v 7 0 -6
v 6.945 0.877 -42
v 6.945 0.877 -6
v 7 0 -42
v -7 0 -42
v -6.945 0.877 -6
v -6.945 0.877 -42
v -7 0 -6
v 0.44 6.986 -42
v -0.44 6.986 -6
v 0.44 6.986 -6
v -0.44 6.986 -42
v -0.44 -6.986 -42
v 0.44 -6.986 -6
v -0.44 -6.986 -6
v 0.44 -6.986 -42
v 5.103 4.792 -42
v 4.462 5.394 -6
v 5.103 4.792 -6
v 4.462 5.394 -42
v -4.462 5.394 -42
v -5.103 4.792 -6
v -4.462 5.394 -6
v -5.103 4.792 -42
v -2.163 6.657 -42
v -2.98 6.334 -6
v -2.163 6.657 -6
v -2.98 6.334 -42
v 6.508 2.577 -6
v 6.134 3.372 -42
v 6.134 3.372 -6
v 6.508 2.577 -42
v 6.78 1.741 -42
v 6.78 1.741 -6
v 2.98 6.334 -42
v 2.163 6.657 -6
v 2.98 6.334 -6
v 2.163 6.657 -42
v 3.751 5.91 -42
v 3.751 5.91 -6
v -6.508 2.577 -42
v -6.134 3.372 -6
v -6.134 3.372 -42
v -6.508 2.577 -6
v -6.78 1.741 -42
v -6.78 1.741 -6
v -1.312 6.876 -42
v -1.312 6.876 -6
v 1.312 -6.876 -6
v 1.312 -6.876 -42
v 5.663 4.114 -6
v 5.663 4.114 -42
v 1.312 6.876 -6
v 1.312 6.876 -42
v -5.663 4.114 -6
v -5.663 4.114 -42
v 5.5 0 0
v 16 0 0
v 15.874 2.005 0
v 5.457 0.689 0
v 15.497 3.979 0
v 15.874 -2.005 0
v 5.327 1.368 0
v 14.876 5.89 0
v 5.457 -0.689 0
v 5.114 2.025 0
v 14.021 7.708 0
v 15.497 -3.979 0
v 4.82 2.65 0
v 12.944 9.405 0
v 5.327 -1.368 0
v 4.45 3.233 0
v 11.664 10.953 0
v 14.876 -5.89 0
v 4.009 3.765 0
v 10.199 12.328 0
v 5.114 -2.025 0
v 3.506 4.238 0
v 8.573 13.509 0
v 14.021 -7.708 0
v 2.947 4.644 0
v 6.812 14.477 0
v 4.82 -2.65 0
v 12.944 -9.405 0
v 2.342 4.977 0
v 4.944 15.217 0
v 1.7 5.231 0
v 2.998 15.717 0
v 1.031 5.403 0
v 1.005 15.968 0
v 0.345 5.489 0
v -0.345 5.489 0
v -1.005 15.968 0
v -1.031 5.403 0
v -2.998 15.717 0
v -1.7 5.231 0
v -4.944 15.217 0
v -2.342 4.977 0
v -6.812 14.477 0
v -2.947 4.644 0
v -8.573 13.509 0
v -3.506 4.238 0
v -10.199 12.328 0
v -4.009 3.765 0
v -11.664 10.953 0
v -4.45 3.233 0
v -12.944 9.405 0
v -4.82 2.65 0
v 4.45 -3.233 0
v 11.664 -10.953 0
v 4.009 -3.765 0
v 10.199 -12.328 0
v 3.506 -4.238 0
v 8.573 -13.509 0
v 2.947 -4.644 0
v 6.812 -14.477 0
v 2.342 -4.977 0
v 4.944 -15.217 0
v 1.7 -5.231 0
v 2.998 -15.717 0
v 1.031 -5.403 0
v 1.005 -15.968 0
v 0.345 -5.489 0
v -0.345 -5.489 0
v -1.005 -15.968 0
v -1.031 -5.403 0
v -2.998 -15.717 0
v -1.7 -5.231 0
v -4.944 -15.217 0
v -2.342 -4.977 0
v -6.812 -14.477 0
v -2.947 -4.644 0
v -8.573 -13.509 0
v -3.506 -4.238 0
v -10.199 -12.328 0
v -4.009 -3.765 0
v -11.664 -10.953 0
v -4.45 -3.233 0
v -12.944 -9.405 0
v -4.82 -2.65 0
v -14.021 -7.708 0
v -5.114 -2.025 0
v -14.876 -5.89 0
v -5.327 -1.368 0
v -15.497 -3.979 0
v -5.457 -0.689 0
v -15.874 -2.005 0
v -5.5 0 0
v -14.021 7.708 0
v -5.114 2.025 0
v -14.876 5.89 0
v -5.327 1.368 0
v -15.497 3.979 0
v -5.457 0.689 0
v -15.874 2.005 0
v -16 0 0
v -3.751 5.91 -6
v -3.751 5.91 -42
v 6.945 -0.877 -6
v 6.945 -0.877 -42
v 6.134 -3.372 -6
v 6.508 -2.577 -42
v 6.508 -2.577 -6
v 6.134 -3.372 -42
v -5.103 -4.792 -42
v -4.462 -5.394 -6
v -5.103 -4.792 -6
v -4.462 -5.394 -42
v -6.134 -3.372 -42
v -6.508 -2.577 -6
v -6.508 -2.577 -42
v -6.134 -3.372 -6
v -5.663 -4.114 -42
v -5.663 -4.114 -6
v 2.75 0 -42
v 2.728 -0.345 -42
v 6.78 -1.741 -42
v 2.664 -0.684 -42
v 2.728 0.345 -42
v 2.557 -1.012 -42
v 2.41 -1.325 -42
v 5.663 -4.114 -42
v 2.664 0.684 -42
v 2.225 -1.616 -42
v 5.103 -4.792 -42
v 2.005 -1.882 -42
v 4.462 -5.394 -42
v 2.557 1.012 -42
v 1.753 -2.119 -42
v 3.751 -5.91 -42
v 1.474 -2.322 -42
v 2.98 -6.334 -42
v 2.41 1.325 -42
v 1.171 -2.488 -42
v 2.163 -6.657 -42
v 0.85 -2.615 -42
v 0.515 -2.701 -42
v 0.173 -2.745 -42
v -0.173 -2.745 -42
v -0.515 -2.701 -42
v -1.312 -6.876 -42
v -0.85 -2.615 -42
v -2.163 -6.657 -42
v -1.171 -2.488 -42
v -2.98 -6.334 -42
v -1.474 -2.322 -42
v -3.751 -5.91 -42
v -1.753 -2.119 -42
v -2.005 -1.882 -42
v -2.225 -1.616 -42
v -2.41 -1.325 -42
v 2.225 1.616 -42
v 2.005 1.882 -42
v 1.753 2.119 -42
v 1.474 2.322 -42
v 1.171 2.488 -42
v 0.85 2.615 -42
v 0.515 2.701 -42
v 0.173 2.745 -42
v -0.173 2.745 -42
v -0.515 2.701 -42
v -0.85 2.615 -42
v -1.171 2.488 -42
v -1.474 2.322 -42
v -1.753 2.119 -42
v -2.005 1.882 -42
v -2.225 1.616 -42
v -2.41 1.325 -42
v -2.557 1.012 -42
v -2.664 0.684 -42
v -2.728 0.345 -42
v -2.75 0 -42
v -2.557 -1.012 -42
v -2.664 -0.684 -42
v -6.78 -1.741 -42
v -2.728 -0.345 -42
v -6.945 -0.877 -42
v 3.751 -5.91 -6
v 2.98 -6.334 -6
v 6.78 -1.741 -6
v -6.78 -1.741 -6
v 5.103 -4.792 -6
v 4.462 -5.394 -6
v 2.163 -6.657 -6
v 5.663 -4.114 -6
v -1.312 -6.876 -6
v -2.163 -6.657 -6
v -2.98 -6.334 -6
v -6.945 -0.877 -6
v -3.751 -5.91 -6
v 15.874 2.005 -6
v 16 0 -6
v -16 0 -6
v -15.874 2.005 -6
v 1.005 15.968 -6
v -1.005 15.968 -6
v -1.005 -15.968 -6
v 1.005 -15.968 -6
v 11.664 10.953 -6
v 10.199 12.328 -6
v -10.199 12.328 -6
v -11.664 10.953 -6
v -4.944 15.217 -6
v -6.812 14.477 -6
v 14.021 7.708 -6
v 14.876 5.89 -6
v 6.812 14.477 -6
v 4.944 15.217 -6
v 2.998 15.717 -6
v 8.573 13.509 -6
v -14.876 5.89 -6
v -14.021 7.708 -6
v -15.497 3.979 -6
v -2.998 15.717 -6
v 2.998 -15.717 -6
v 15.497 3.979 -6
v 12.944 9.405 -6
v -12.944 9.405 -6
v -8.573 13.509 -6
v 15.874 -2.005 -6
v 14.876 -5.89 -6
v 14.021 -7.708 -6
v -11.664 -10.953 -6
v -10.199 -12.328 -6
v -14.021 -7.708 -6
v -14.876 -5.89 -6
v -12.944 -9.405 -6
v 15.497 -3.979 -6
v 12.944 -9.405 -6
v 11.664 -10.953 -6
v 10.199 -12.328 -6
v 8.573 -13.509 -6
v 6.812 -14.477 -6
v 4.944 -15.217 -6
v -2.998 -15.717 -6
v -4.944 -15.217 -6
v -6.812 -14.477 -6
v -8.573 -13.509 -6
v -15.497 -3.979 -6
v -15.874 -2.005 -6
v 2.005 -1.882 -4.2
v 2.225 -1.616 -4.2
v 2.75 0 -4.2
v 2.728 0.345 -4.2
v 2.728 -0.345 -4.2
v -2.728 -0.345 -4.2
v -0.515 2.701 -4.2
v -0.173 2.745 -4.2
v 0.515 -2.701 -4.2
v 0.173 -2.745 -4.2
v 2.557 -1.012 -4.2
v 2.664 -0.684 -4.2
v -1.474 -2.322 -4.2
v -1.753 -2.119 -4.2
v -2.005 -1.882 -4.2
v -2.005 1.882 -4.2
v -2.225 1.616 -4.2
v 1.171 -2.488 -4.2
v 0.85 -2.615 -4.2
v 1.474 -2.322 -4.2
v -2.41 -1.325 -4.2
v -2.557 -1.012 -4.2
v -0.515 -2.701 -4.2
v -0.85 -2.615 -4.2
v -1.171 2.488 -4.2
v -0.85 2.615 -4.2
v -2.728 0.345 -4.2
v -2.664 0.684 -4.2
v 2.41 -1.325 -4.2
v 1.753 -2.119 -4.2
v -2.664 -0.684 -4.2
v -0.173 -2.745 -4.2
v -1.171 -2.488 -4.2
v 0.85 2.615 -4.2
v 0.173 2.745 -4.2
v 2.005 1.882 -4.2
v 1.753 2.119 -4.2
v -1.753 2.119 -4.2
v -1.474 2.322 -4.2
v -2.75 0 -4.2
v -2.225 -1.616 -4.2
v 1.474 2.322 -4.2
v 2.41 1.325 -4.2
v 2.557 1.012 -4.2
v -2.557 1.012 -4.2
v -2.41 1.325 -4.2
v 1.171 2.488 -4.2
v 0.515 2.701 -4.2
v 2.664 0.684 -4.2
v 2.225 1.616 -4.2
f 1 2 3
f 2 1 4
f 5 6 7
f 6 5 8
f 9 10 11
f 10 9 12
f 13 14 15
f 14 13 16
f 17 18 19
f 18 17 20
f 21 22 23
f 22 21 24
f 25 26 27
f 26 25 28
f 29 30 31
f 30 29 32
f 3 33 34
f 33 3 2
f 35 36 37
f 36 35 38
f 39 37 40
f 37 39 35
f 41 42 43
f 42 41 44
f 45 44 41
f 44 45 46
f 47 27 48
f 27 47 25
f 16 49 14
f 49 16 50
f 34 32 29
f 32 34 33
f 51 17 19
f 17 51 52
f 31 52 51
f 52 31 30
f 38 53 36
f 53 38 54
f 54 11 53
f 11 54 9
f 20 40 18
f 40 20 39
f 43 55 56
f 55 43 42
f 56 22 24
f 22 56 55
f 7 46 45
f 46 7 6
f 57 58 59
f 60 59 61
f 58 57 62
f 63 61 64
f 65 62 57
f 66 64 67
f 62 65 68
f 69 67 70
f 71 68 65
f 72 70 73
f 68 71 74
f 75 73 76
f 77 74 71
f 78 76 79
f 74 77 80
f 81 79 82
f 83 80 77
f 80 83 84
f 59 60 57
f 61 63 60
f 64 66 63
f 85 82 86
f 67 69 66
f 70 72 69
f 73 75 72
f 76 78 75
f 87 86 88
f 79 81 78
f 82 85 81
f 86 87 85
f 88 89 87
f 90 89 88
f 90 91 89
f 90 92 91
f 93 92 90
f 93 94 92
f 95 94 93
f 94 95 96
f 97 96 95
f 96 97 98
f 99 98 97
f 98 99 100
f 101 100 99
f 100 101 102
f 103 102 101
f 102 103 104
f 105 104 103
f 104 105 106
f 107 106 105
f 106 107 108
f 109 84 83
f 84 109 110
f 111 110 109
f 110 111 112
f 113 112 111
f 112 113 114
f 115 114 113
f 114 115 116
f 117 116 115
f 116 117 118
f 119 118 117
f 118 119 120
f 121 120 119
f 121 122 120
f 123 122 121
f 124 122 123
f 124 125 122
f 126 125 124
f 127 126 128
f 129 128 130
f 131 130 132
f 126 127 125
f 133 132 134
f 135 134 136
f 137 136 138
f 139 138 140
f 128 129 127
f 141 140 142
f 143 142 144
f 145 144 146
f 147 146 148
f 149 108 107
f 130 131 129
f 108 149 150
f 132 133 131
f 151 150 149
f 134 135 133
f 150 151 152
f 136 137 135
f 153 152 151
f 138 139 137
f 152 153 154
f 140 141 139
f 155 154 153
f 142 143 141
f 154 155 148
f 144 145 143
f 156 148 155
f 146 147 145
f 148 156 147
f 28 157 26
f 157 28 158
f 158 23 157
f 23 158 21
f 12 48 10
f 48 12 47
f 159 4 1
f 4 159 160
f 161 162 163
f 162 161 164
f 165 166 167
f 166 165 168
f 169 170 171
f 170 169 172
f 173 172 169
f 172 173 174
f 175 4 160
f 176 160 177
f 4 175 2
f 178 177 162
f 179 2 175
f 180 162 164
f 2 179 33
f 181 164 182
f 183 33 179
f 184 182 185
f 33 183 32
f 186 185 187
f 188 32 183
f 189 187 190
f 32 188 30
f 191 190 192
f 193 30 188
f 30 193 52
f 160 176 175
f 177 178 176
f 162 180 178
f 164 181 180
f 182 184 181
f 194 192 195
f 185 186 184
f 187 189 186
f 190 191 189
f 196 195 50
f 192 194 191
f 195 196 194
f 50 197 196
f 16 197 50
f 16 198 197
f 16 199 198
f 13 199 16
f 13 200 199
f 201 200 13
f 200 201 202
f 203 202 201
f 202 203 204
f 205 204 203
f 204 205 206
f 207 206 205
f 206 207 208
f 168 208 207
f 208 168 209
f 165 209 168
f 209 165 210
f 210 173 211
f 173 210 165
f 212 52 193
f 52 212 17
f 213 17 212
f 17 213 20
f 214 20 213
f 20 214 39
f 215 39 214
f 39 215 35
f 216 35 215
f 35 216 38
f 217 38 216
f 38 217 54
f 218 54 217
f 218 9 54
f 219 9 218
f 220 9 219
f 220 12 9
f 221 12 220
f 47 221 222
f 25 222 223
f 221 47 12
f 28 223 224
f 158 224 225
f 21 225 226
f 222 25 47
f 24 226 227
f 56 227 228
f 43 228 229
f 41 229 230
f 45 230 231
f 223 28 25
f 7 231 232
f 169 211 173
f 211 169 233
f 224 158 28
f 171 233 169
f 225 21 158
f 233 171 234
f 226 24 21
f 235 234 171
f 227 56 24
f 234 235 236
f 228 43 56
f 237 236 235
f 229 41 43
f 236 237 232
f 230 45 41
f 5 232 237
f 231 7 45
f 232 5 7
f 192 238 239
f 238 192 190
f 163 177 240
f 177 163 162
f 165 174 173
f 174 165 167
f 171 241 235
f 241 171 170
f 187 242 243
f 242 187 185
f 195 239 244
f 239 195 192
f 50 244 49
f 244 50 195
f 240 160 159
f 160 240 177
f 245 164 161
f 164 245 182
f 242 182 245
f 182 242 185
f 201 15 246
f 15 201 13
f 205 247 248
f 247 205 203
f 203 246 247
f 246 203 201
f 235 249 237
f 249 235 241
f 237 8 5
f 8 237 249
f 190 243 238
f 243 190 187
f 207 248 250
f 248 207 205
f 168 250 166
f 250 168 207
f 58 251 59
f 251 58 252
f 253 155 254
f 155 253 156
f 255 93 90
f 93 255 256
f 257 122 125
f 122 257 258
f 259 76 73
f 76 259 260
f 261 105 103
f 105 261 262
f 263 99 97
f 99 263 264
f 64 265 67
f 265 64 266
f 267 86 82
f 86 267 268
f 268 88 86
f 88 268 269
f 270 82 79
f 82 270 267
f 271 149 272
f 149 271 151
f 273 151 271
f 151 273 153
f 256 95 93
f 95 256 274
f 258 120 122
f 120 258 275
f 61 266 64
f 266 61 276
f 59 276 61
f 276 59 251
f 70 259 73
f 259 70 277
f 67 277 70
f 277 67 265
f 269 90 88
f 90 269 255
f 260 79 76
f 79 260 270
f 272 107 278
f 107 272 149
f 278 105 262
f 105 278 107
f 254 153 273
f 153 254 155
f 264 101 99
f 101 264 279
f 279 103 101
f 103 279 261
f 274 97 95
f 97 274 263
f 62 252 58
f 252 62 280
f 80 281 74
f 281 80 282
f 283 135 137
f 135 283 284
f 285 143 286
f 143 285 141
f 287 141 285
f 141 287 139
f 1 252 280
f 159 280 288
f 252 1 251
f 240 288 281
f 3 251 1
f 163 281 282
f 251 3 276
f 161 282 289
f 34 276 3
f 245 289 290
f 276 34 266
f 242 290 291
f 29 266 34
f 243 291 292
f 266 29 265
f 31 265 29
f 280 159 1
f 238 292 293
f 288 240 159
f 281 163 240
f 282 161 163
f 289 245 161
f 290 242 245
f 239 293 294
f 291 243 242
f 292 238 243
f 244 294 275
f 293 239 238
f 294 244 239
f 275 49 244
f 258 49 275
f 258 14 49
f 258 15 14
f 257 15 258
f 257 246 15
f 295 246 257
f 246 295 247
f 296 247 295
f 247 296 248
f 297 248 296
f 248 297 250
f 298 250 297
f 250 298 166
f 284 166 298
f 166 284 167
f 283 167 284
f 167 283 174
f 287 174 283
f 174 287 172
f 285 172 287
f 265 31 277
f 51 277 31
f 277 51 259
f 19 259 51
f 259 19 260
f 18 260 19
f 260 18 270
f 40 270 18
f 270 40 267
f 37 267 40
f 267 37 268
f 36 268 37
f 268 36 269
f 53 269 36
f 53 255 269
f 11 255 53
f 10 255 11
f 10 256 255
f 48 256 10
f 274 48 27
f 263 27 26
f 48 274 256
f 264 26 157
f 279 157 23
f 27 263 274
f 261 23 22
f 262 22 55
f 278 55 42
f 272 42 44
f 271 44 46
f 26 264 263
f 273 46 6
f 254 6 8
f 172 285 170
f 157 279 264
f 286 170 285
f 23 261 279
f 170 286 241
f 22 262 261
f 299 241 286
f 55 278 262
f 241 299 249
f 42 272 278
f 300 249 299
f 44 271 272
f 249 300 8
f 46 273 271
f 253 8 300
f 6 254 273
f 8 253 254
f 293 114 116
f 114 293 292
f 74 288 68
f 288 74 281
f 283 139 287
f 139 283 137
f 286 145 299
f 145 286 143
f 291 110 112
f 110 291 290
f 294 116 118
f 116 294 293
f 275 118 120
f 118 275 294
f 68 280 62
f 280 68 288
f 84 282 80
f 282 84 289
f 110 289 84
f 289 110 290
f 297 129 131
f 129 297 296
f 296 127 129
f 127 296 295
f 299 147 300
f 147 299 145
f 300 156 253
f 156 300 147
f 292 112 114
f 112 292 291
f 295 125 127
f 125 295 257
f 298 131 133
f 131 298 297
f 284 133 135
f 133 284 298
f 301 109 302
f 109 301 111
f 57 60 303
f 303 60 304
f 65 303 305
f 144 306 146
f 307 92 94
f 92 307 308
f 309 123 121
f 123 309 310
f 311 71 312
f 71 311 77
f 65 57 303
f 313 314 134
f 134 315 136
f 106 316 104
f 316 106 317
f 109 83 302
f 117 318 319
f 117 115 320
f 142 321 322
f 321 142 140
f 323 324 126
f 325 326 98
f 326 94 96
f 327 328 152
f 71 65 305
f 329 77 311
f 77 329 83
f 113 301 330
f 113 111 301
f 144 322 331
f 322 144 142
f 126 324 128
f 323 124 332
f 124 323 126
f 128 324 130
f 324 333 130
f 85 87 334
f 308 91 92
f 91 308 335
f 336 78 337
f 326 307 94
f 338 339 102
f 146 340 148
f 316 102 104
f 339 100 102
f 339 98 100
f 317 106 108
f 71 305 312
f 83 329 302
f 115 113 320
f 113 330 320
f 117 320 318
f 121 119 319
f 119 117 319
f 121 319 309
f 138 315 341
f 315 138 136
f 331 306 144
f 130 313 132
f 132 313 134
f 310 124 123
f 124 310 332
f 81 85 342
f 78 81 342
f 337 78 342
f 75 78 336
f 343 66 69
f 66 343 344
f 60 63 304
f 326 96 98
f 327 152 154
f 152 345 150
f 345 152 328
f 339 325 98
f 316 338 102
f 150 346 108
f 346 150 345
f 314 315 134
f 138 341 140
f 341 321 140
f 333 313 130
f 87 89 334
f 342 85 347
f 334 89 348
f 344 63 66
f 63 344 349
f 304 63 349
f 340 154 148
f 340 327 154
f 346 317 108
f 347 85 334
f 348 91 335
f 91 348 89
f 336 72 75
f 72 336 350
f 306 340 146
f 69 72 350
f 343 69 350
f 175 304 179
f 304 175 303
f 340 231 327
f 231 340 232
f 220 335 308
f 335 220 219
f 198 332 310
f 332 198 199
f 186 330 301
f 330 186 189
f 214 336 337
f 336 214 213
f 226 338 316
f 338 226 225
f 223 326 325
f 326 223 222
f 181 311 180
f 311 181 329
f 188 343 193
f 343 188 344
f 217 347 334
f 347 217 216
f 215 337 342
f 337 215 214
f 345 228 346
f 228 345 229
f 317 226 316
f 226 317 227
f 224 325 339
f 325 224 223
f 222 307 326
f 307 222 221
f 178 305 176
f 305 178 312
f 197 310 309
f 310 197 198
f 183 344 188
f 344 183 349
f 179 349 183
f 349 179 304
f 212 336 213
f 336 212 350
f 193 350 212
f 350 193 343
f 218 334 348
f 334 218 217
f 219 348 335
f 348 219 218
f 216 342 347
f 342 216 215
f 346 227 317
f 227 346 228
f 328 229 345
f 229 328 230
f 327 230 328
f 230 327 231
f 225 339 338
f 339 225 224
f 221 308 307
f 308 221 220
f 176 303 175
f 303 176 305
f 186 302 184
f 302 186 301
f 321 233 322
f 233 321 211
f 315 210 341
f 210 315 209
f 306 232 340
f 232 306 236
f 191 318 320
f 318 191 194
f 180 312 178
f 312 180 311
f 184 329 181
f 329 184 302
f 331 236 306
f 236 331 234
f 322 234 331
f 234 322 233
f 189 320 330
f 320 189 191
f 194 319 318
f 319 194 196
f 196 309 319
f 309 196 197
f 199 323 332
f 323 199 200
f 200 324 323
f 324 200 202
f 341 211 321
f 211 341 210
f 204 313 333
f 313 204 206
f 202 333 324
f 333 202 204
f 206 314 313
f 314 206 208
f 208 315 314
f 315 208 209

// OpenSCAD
$fn = 50;


difference() {
	union() {
		translate(v = [0, 0, -42.0000000000]) {
			cylinder(h = 42, r = 7.0000000000);
		}
		translate(v = [0, 0, -6.0000000000]) {
			cylinder(h = 6, r = 16.0000000000);
		}
	}
	union() {
		translate(v = [0, 0, 0]) {
			rotate(a = [0, 0, 0]) {
				difference() {
					union() {
						#translate(v = [0, 0, -42.0000000000]) {
							cylinder(h = 42, r = 2.2500000000);
						}
						#translate(v = [0, 0, -4.2000000000]) {
							cylinder(h = 4.2000000000, r = 7.0000000000, r1 = 2.7500000000, r2 = 5.5000000000);
						}
						#translate(v = [0, 0, -42.0000000000]) {
							cylinder(h = 42, r = 2.7500000000);
						}
						#translate(v = [0, 0, -42.0000000000]) {
							cylinder(h = 42, r = 2.2500000000);
						}
					}
					union();
				}
			}
		}
	}
}
